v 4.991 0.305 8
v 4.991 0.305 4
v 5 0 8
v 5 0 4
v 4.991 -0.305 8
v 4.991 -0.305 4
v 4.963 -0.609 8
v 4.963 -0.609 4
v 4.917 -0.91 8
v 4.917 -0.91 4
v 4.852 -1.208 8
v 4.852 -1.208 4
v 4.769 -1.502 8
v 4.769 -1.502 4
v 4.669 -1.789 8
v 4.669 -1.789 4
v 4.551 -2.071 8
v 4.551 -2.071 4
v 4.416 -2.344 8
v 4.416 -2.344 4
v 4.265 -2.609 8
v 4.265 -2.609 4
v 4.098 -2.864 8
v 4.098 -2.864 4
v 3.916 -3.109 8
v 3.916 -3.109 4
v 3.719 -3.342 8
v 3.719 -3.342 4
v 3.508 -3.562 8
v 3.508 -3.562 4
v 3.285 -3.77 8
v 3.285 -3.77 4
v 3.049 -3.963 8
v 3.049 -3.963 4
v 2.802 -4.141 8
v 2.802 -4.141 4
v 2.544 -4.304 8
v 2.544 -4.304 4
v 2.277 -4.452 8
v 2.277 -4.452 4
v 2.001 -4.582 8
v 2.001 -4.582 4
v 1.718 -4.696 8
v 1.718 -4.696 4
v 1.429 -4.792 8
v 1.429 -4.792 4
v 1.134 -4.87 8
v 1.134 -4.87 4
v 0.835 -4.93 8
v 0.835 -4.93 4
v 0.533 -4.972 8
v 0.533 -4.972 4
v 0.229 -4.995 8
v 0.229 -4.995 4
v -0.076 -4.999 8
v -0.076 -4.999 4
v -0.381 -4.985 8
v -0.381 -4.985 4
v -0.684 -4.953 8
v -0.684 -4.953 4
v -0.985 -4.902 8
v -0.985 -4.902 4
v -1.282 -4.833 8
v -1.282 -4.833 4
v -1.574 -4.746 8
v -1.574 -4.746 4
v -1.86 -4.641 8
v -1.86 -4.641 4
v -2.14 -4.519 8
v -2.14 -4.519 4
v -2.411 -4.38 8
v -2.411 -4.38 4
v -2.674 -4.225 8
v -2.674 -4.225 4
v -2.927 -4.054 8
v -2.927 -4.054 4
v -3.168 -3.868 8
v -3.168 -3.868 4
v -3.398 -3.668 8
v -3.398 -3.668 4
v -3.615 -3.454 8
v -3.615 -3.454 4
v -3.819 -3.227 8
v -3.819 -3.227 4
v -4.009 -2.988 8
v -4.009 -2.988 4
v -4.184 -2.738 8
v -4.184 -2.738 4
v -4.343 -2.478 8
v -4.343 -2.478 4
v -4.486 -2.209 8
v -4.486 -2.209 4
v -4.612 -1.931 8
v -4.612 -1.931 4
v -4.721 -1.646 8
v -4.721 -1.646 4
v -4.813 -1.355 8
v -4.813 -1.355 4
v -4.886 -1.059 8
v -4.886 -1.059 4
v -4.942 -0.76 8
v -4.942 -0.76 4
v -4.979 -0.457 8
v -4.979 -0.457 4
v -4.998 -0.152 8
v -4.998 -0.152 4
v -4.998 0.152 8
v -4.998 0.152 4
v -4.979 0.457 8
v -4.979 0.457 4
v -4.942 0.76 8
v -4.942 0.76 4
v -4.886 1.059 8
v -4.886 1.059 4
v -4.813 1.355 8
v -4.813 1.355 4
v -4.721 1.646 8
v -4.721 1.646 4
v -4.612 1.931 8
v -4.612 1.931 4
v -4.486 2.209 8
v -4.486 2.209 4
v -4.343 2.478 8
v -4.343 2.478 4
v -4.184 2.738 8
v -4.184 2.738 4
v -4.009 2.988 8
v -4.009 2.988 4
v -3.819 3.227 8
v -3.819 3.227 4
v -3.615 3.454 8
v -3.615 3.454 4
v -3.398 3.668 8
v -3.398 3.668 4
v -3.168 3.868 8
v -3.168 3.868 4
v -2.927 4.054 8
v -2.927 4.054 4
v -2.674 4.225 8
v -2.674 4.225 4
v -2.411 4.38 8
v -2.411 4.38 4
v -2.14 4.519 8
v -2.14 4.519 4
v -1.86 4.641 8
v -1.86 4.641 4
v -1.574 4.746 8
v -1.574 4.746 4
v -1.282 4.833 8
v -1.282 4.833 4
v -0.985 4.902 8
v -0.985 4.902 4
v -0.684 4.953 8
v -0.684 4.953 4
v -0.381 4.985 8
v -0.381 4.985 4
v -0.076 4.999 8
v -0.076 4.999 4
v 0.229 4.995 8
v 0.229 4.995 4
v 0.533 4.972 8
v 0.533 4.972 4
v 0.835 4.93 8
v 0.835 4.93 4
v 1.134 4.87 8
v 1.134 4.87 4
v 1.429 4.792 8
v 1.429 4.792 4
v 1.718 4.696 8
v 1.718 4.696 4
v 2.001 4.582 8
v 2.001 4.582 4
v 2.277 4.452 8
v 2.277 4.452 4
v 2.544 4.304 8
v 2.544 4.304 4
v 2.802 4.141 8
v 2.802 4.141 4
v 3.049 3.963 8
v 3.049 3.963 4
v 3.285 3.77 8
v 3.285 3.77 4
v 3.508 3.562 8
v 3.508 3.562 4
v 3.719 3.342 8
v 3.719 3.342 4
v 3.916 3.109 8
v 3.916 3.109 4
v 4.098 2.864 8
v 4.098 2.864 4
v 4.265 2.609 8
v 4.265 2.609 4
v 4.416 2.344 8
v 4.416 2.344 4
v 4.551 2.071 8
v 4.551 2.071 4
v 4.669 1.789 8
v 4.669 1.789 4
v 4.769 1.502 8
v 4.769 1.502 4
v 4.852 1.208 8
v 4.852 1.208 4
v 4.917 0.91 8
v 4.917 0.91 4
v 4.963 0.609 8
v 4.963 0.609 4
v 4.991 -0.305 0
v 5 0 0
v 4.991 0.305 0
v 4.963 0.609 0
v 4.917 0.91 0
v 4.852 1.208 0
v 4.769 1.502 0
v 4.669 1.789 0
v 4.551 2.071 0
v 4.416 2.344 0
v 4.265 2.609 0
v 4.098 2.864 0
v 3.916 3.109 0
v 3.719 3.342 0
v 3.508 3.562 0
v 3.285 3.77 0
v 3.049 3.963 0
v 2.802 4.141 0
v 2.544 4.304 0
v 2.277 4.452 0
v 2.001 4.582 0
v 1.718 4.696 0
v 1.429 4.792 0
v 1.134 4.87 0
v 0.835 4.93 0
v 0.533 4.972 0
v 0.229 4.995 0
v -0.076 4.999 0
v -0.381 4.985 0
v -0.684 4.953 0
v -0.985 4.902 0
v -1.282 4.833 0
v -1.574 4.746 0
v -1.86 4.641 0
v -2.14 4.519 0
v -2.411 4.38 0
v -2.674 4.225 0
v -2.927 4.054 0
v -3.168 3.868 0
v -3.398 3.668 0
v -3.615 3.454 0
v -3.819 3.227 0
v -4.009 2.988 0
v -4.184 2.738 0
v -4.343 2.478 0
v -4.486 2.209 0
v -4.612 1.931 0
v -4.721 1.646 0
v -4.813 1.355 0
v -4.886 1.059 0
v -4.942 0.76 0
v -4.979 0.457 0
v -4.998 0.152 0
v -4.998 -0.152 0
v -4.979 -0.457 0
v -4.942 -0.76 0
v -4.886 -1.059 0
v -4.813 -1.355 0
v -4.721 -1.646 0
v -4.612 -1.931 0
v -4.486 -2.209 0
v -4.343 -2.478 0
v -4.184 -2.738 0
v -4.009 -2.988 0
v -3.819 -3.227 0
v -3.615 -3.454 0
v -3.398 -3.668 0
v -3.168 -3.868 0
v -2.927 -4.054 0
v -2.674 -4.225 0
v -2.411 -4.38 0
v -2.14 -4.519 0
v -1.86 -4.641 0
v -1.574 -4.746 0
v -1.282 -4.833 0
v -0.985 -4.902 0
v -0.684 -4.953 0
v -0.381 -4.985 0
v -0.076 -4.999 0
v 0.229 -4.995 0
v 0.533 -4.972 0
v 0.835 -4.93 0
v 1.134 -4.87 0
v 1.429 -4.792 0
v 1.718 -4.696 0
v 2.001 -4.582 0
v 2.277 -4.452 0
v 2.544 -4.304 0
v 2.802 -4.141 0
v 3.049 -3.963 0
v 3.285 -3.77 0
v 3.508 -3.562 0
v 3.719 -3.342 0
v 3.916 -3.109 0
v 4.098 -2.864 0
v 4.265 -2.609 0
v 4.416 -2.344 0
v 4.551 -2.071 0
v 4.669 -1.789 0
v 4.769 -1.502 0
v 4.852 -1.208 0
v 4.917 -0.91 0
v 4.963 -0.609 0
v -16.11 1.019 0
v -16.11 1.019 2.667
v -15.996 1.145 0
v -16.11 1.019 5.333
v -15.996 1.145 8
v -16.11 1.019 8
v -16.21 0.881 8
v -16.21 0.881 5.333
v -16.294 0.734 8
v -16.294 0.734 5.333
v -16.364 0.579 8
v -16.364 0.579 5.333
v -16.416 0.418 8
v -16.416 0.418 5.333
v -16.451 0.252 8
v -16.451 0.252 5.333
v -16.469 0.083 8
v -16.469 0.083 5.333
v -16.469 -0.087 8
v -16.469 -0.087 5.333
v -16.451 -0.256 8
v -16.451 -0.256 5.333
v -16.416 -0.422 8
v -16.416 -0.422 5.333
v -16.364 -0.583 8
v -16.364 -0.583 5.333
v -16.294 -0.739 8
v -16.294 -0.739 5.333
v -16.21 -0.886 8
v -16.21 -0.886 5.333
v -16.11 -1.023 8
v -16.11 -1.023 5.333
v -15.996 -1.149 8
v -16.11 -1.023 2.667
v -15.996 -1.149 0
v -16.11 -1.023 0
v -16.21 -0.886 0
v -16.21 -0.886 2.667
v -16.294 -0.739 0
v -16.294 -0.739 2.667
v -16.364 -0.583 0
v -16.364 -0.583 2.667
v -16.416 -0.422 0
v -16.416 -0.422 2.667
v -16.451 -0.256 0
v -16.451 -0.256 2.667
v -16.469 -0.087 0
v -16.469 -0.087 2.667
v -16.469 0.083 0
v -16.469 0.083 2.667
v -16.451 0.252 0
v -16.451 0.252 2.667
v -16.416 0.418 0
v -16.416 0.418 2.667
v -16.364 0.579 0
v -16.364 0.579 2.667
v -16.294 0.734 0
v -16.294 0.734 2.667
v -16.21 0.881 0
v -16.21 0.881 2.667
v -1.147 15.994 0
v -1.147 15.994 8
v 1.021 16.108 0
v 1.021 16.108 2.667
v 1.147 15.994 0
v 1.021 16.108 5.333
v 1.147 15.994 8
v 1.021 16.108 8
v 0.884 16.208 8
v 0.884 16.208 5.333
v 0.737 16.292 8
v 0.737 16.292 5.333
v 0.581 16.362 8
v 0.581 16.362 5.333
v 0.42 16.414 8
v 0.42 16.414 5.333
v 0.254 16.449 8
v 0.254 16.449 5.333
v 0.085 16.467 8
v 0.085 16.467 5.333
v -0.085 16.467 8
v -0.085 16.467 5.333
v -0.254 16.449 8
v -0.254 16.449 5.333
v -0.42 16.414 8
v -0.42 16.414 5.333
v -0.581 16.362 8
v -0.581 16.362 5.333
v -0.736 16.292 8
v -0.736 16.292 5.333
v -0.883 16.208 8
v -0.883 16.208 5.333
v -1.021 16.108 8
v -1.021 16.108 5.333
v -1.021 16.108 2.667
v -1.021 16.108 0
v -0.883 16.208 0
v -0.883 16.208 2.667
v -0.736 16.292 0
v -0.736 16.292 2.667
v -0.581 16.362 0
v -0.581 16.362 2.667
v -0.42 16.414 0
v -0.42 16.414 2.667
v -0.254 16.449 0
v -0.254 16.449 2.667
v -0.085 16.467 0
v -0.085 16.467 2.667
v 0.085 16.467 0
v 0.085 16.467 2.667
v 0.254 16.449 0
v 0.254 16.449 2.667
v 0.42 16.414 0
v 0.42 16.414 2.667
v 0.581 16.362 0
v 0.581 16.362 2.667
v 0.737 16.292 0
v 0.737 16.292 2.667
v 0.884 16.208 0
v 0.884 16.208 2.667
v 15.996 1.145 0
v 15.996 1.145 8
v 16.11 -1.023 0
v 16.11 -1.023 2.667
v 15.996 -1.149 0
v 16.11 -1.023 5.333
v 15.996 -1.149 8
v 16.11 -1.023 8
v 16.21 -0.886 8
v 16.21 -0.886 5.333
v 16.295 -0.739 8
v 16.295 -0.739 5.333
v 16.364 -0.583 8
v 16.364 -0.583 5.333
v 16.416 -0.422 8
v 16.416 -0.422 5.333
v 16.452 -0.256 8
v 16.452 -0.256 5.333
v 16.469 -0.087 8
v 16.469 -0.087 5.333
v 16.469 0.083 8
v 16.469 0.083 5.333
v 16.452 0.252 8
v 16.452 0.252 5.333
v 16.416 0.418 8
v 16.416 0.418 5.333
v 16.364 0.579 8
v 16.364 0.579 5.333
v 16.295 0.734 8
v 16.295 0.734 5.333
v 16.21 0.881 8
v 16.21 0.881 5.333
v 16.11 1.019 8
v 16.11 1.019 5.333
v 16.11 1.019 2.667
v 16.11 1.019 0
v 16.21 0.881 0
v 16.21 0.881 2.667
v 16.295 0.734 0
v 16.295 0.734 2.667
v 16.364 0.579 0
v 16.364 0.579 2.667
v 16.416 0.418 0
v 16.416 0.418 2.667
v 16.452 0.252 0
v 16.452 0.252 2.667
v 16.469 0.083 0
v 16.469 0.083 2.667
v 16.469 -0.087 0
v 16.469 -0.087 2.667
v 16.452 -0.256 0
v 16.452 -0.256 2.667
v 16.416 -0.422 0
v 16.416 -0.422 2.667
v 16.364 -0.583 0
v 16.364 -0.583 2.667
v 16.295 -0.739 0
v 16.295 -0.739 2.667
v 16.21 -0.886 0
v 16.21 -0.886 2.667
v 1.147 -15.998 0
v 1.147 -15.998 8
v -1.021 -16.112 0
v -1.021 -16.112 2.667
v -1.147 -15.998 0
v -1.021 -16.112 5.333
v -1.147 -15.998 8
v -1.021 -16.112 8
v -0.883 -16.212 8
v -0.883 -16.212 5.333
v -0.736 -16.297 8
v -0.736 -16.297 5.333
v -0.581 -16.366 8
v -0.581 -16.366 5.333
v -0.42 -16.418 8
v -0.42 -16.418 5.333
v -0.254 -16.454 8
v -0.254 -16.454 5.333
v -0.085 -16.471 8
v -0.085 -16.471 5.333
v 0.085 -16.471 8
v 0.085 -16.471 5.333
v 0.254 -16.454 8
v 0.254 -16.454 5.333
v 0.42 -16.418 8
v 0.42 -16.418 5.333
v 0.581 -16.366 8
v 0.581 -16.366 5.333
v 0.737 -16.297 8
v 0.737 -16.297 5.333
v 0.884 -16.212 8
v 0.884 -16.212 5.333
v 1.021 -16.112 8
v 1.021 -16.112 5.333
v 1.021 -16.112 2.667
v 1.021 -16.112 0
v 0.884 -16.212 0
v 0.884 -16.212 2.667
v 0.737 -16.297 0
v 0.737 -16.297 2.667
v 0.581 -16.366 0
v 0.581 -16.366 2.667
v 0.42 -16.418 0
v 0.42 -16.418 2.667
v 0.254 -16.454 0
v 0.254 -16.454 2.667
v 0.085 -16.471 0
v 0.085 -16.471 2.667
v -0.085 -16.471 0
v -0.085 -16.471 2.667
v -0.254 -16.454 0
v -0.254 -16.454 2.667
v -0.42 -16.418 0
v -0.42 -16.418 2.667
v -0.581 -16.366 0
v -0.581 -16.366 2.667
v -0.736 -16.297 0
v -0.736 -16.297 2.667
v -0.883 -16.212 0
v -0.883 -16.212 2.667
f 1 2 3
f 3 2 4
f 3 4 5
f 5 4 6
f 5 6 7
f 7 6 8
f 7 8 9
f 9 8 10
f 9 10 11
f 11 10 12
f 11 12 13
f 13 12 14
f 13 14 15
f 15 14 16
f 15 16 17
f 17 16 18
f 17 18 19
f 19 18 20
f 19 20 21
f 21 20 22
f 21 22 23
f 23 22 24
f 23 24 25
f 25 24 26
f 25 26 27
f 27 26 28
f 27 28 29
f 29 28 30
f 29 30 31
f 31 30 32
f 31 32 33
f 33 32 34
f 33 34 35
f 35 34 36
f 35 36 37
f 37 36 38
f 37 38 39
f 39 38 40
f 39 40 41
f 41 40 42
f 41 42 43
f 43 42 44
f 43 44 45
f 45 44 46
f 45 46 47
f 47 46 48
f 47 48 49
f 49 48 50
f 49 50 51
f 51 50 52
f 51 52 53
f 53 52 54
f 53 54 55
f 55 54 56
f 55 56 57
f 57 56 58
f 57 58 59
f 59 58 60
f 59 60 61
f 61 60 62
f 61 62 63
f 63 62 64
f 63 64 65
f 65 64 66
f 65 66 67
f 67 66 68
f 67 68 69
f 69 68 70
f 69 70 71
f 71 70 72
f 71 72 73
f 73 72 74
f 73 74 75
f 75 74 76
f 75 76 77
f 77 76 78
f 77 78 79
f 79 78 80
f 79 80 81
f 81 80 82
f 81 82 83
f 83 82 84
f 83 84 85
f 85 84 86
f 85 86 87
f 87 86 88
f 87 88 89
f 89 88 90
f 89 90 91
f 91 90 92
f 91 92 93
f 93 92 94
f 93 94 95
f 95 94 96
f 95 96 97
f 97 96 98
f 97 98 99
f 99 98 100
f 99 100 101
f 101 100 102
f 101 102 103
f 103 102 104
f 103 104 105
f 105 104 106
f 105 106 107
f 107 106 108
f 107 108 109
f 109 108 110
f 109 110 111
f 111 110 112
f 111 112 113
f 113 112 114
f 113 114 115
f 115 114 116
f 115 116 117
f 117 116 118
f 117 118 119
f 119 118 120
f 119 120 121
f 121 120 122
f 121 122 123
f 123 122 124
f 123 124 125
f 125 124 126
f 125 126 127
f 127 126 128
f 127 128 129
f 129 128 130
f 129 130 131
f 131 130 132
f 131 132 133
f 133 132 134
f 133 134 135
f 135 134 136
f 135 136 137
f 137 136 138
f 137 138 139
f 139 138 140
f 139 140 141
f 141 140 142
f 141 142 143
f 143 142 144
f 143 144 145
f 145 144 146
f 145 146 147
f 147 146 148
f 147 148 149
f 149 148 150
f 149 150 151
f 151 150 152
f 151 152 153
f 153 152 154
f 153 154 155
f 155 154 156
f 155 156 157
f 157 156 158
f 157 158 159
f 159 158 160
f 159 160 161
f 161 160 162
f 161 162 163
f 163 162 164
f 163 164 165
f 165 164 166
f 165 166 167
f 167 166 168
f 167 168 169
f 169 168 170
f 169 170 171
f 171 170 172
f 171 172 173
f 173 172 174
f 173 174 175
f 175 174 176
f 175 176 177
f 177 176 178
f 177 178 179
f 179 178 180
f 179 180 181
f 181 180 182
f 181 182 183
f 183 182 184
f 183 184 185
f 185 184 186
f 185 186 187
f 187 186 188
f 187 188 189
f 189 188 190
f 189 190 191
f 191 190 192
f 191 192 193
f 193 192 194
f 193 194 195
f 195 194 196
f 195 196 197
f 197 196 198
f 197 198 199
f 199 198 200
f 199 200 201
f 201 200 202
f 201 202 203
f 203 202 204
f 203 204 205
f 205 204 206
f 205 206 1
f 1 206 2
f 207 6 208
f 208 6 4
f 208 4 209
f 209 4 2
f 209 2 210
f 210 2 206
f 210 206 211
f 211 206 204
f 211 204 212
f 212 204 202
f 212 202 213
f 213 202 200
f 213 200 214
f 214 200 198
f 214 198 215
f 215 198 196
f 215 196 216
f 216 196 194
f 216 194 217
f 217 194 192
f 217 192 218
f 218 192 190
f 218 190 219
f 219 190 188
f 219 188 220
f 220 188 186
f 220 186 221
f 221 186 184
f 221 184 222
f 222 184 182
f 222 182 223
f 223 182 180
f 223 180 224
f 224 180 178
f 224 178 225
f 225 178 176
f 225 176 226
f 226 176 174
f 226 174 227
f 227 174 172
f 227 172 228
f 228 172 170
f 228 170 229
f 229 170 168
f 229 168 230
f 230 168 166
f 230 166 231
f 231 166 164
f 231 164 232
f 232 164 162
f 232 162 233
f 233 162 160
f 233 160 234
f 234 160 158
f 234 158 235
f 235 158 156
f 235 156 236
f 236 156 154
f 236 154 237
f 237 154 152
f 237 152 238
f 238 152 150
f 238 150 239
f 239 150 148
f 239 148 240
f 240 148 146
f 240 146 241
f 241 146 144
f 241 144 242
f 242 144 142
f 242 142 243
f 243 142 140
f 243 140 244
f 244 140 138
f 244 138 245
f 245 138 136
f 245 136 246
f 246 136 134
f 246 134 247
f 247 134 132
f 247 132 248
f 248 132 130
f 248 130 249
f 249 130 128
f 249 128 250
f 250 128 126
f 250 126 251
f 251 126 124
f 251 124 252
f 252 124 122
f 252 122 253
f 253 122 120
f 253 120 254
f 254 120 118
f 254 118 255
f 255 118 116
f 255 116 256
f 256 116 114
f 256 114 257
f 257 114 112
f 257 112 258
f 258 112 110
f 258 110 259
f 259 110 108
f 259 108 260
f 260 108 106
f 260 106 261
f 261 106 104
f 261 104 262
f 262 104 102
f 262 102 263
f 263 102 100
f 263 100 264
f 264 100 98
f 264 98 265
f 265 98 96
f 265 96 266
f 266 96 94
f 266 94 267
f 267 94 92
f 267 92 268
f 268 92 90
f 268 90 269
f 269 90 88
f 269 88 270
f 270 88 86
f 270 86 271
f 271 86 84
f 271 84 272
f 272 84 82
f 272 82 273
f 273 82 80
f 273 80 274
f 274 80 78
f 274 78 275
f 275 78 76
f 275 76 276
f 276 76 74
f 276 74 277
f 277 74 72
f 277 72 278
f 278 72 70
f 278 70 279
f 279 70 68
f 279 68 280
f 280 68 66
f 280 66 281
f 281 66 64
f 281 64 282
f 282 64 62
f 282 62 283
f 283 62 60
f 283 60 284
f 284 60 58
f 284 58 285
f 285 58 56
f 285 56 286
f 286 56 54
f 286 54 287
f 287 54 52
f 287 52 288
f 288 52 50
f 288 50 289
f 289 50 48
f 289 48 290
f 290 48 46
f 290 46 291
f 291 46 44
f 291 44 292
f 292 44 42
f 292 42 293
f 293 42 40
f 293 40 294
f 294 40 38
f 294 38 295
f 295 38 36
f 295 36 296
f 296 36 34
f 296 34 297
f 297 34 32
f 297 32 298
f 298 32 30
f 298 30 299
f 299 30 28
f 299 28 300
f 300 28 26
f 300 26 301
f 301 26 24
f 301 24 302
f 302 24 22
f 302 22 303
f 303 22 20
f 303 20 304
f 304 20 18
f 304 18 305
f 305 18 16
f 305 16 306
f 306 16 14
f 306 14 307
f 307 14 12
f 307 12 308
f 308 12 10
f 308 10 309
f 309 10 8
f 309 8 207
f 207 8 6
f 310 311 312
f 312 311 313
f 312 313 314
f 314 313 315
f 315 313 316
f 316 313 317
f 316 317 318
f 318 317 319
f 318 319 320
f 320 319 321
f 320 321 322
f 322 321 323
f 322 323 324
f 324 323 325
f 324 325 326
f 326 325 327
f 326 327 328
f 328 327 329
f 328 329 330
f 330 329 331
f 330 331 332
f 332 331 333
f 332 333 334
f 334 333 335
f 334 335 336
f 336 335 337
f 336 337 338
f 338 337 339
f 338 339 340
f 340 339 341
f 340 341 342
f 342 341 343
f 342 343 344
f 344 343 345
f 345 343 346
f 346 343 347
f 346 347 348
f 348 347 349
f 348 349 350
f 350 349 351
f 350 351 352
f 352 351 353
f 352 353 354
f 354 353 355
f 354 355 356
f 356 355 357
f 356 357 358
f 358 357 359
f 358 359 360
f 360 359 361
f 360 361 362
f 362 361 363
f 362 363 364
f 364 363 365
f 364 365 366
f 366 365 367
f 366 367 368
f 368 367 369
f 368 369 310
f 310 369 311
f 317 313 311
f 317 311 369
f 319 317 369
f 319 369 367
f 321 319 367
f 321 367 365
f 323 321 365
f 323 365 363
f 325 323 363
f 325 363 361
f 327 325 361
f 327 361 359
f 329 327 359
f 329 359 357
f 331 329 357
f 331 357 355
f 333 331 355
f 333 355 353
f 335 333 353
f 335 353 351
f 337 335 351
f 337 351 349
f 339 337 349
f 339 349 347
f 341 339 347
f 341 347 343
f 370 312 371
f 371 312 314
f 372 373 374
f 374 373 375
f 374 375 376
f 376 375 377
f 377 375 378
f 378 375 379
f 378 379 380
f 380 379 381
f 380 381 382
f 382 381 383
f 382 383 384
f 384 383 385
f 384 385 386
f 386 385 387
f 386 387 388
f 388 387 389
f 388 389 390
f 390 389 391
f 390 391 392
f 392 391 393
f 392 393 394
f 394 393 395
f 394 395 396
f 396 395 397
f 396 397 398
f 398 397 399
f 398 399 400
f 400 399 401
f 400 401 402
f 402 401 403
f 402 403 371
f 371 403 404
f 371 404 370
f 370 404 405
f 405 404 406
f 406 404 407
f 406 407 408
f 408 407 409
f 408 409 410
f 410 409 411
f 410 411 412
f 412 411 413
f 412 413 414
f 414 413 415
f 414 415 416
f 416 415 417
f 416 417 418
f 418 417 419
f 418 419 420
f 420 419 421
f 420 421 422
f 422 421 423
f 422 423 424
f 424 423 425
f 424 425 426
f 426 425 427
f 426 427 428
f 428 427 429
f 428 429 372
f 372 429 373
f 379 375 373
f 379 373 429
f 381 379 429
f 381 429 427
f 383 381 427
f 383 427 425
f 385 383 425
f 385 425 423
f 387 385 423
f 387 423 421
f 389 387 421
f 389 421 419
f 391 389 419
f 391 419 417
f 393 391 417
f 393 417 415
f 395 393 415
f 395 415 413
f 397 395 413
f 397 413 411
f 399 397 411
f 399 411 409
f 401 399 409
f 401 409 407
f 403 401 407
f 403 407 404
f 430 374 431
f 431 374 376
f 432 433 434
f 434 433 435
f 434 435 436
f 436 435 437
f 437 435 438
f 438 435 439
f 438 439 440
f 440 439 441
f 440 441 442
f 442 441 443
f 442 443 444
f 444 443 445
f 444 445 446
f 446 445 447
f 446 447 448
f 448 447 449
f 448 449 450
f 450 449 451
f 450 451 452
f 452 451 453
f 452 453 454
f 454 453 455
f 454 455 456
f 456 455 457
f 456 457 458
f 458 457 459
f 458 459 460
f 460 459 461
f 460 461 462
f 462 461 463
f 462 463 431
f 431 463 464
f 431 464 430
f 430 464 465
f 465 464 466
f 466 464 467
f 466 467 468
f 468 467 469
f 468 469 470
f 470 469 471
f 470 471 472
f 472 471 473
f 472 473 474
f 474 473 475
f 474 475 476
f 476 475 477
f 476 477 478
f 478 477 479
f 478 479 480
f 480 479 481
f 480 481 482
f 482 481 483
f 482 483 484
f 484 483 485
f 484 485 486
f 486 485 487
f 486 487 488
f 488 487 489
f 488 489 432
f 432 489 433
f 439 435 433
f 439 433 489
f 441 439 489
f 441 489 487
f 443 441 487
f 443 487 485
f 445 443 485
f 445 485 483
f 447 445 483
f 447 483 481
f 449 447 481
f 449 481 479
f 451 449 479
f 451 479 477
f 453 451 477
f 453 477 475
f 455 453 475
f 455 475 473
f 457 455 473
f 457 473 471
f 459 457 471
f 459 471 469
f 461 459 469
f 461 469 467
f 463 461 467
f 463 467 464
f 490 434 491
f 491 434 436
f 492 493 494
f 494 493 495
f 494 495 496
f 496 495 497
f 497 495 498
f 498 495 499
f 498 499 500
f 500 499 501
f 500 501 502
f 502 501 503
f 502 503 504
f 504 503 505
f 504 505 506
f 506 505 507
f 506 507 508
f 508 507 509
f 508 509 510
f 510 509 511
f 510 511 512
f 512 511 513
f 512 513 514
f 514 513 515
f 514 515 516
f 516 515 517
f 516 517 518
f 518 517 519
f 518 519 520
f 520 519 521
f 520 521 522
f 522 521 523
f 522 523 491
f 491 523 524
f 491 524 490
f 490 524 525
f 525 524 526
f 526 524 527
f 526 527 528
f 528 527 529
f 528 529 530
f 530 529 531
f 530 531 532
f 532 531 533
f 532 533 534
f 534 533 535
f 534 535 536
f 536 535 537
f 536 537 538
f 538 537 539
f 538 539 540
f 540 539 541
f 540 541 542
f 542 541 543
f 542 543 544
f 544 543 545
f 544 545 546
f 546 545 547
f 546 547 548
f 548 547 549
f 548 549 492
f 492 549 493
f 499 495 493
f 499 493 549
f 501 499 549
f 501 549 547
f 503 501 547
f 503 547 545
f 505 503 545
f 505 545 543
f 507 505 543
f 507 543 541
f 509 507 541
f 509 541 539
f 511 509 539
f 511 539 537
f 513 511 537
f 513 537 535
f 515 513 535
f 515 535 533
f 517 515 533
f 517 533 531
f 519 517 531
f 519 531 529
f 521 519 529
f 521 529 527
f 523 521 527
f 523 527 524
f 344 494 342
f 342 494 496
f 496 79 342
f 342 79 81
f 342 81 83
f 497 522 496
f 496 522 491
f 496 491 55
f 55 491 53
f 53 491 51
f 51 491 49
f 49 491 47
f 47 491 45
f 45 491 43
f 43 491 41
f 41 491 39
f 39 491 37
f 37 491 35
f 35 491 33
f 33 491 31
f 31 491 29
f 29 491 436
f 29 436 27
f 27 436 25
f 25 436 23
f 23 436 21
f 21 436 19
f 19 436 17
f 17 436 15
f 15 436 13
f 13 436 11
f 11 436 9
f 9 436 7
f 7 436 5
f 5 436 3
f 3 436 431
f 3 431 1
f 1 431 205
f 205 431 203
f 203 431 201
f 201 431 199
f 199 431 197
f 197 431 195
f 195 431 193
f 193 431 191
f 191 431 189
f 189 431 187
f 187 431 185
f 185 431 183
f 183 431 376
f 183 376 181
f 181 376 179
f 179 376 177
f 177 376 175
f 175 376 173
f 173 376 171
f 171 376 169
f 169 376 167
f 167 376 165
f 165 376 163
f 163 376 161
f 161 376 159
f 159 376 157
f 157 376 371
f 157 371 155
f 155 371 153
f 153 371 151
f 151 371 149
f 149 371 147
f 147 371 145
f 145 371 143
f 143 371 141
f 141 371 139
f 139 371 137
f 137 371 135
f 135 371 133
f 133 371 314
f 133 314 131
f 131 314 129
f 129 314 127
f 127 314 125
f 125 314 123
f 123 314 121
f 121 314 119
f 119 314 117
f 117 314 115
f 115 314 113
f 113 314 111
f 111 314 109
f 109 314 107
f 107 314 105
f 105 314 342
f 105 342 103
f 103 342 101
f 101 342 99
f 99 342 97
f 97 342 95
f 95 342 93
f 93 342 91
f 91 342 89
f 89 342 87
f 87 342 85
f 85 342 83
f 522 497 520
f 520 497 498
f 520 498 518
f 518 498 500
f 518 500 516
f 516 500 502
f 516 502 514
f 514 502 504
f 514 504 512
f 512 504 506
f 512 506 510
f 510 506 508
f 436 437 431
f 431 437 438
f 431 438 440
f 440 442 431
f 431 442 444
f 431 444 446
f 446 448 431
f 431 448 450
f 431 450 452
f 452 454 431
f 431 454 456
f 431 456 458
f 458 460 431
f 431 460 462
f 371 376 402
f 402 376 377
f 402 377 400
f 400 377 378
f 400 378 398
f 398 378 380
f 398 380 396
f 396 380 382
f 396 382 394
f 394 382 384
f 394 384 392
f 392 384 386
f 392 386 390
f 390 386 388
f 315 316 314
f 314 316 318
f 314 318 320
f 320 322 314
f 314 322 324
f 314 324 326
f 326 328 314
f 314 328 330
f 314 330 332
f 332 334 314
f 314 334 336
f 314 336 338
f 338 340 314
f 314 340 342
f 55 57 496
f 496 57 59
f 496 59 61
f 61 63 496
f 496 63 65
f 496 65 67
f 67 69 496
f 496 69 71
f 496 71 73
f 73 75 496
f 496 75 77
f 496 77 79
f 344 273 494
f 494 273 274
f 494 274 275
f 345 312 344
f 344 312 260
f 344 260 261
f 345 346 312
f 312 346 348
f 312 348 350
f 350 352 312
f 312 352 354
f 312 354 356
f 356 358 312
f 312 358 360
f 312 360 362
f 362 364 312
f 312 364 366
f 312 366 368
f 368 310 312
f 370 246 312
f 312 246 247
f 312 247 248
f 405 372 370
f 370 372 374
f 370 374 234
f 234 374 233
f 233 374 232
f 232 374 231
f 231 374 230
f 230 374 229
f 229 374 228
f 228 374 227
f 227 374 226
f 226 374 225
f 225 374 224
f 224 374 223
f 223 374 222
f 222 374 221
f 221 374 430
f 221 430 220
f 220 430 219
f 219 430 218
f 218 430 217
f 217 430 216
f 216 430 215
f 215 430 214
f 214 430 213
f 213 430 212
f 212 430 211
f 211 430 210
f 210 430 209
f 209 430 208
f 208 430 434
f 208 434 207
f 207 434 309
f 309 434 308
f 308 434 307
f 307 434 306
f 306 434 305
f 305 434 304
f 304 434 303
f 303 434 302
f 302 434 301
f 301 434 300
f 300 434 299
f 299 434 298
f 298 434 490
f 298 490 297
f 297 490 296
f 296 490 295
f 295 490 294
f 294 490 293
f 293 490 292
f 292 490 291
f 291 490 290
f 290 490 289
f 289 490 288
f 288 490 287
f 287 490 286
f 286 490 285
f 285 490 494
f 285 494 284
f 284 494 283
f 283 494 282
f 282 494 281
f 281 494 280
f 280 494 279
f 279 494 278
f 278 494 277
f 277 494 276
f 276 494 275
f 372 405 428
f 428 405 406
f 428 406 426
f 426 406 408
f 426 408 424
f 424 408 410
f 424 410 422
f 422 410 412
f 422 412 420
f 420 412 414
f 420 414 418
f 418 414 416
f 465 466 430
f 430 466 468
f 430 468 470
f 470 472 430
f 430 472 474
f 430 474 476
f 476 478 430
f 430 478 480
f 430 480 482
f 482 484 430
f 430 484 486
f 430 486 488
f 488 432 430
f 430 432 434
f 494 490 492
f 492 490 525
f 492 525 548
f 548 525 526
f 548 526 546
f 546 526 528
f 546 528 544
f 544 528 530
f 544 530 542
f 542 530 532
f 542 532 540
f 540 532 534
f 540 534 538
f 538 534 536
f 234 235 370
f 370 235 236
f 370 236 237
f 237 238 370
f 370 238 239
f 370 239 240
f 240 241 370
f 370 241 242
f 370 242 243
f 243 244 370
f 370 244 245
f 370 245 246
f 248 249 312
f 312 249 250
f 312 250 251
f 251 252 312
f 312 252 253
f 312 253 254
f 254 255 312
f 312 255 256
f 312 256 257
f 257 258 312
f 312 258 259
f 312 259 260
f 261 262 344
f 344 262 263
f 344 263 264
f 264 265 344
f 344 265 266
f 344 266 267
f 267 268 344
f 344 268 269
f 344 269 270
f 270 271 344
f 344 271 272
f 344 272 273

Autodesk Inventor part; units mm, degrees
ref_plane "YZ Plane" through (0, 0, 0) normal (1, 0, 0) x (0, 1, 0)
ref_plane "XZ Plane" through (0, 0, 0) normal (0, 1, 0) x (-1, 0, 0)
ref_plane "XY Plane" through (0, 0, 0) normal (0, 0, 1) x (1, 0, 0)
ref_plane "Arbeitsebene1" through (0, 0, 0) normal (0, 0, 1) x (1, 0, 0)
sketch "Skizze1" plane through (0, 0, 0) normal (0, 0, 1) x (1, 0, 0)
  circle A0 centre (-5.0971, -17.293) radius 1.4
  circle A1 centre (-17.4192, -5.2278) radius 1.4
  arc A2 (5.6957, 26.2674) -> (7.9686, 25.6694) centre (6.0612, 23.038) ccw
  arc A3 (5.6957, 26.2674) -> (-18.8161, -19.193) centre (0, 0) ccw
  arc A4 (-18.1702, -19.8055) -> (-18.8161, -19.193) centre (-16.2778, -17.1634) ccw
  arc A5 (-18.1702, -19.8055) -> (25.9554, 6.9811) centre (0, 0) ccw
  arc A6 (25.2463, 9.2218) -> (25.9554, 6.9811) centre (22.7119, 7.1872) ccw
  arc A7 (25.2463, 9.2218) -> (7.9686, 25.6694) centre (0, 0) ccw
  spline S0 degree 3 poles (-11.5553, -6.2972) (-11.3711, -6.4814) (-11.2247, -6.6998) (-11.0238, -7.1803) (-10.9713, -7.4379) (-10.9679, -7.9586) (-11.0171, -8.2168) (-11.2083, -8.6915) (-11.3454, -8.905) (-11.5184, -9.0874) knots 0 0 0 0 0.252225 0.252225 0.504373 0.504373 0.756494 0.756494 1 1 1 1
  line L0 (-11.5553, -6.2972) -> (-16.3497, -1.5028)
  arc A8 (-16.3497, 1.4985) -> (-16.3497, -1.5028) centre (-14.8491, -0.0022) ccw
  line L1 (-16.3497, 1.4985) -> (-1.5005, 16.3477)
  arc A9 (1.5007, 16.3477) -> (-1.5005, 16.3477) centre (0.0001, 14.8471) ccw
  line L2 (1.5007, 16.3477) -> (16.35, 1.4985)
  arc A10 (16.35, -1.5028) -> (16.35, 1.4985) centre (14.8494, -0.0022) ccw
  line L3 (16.35, -1.5028) -> (1.5007, -16.352)
  arc A11 (-1.5005, -16.352) -> (1.5007, -16.352) centre (0.0001, -14.8514) ccw
  line L4 (-1.5005, -16.352) -> (-4.7949, -13.0576)
  spline S1 degree 3 poles (-7.585, -13.0208) (-7.3961, -12.8415) (-7.1739, -12.7009) (-6.6882, -12.5128) (-6.4293, -12.4671) (-5.9087, -12.4775) (-5.6519, -12.5335) (-5.1824, -12.7372) (-4.9727, -12.8798) (-4.7949, -13.0576) knots 0 0 0 0 0.252231 0.252231 0.504388 0.504388 0.756517 0.756517 1 1 1 1
  arc A12 (-11.5184, -9.0874) -> (-7.585, -13.0208) centre (-9.4998, -11.0022) ccw
  line L5 (-4.7949, -13.0576) -> (-11.5553, -6.2972)
  line L6 (-15.9962, -1.1492) -> (-11.2017, -5.9437)
  arc A13 (-11.1557, -9.4315) -> (-7.9291, -12.658) centre (-9.4998, -11.0022) ccw
  line L7 (-4.4413, -12.7041) -> (-1.1469, -15.9985)
  arc A14 (-1.1469, -15.9985) -> (1.1472, -15.9985) centre (0.0001, -14.8514) ccw
  line L8 (1.1472, -15.9985) -> (15.9964, -1.1492)
  arc A15 (15.9964, -1.1492) -> (15.9964, 1.1449) centre (14.8494, -0.0022) ccw
  line L9 (15.9964, 1.1449) -> (1.1472, 15.9941)
  arc A16 (1.1472, 15.9941) -> (-1.1469, 15.9941) centre (0.0001, 14.8471) ccw
  line L10 (-1.1469, 15.9941) -> (-15.9962, 1.1449)
  arc A17 (-15.9962, 1.1449) -> (-15.9962, -1.1492) centre (-14.8491, -0.0022) ccw
  line L11 (-4.4414, -12.704) -> (-11.2017, -5.9437)
  circle A18 centre (0, 0) radius 5
  spline S2 degree 5 poles (-11.2017, -5.9437) (-10.656, -6.4897) (-10.3193, -7.2462) (-10.3079, -8.1062) (-10.6246, -8.8713) (-11.1557, -9.4315) knots 0 0 0 0 0 0 1 1 1 1 1 1
  spline S3 degree 5 poles (-7.9291, -12.658) (-7.3689, -12.1269) (-6.6038, -11.8103) (-5.7438, -11.8216) (-4.9873, -12.1584) (-4.4413, -12.7041) knots 0 0 0 0 0 0 1 1 1 1 1 1
  point P0 (0, 0)
  dimension "d0" = 0.5
  dimension "d1" = 10
extrude "Extrusion1" add sketch "Skizze1" along normal blind 8 contours L6 A17 L10 A16 L9 A15 L8 A14 L7 L11
properties part number "IM_Matchboxscope_lightdiffusor"
